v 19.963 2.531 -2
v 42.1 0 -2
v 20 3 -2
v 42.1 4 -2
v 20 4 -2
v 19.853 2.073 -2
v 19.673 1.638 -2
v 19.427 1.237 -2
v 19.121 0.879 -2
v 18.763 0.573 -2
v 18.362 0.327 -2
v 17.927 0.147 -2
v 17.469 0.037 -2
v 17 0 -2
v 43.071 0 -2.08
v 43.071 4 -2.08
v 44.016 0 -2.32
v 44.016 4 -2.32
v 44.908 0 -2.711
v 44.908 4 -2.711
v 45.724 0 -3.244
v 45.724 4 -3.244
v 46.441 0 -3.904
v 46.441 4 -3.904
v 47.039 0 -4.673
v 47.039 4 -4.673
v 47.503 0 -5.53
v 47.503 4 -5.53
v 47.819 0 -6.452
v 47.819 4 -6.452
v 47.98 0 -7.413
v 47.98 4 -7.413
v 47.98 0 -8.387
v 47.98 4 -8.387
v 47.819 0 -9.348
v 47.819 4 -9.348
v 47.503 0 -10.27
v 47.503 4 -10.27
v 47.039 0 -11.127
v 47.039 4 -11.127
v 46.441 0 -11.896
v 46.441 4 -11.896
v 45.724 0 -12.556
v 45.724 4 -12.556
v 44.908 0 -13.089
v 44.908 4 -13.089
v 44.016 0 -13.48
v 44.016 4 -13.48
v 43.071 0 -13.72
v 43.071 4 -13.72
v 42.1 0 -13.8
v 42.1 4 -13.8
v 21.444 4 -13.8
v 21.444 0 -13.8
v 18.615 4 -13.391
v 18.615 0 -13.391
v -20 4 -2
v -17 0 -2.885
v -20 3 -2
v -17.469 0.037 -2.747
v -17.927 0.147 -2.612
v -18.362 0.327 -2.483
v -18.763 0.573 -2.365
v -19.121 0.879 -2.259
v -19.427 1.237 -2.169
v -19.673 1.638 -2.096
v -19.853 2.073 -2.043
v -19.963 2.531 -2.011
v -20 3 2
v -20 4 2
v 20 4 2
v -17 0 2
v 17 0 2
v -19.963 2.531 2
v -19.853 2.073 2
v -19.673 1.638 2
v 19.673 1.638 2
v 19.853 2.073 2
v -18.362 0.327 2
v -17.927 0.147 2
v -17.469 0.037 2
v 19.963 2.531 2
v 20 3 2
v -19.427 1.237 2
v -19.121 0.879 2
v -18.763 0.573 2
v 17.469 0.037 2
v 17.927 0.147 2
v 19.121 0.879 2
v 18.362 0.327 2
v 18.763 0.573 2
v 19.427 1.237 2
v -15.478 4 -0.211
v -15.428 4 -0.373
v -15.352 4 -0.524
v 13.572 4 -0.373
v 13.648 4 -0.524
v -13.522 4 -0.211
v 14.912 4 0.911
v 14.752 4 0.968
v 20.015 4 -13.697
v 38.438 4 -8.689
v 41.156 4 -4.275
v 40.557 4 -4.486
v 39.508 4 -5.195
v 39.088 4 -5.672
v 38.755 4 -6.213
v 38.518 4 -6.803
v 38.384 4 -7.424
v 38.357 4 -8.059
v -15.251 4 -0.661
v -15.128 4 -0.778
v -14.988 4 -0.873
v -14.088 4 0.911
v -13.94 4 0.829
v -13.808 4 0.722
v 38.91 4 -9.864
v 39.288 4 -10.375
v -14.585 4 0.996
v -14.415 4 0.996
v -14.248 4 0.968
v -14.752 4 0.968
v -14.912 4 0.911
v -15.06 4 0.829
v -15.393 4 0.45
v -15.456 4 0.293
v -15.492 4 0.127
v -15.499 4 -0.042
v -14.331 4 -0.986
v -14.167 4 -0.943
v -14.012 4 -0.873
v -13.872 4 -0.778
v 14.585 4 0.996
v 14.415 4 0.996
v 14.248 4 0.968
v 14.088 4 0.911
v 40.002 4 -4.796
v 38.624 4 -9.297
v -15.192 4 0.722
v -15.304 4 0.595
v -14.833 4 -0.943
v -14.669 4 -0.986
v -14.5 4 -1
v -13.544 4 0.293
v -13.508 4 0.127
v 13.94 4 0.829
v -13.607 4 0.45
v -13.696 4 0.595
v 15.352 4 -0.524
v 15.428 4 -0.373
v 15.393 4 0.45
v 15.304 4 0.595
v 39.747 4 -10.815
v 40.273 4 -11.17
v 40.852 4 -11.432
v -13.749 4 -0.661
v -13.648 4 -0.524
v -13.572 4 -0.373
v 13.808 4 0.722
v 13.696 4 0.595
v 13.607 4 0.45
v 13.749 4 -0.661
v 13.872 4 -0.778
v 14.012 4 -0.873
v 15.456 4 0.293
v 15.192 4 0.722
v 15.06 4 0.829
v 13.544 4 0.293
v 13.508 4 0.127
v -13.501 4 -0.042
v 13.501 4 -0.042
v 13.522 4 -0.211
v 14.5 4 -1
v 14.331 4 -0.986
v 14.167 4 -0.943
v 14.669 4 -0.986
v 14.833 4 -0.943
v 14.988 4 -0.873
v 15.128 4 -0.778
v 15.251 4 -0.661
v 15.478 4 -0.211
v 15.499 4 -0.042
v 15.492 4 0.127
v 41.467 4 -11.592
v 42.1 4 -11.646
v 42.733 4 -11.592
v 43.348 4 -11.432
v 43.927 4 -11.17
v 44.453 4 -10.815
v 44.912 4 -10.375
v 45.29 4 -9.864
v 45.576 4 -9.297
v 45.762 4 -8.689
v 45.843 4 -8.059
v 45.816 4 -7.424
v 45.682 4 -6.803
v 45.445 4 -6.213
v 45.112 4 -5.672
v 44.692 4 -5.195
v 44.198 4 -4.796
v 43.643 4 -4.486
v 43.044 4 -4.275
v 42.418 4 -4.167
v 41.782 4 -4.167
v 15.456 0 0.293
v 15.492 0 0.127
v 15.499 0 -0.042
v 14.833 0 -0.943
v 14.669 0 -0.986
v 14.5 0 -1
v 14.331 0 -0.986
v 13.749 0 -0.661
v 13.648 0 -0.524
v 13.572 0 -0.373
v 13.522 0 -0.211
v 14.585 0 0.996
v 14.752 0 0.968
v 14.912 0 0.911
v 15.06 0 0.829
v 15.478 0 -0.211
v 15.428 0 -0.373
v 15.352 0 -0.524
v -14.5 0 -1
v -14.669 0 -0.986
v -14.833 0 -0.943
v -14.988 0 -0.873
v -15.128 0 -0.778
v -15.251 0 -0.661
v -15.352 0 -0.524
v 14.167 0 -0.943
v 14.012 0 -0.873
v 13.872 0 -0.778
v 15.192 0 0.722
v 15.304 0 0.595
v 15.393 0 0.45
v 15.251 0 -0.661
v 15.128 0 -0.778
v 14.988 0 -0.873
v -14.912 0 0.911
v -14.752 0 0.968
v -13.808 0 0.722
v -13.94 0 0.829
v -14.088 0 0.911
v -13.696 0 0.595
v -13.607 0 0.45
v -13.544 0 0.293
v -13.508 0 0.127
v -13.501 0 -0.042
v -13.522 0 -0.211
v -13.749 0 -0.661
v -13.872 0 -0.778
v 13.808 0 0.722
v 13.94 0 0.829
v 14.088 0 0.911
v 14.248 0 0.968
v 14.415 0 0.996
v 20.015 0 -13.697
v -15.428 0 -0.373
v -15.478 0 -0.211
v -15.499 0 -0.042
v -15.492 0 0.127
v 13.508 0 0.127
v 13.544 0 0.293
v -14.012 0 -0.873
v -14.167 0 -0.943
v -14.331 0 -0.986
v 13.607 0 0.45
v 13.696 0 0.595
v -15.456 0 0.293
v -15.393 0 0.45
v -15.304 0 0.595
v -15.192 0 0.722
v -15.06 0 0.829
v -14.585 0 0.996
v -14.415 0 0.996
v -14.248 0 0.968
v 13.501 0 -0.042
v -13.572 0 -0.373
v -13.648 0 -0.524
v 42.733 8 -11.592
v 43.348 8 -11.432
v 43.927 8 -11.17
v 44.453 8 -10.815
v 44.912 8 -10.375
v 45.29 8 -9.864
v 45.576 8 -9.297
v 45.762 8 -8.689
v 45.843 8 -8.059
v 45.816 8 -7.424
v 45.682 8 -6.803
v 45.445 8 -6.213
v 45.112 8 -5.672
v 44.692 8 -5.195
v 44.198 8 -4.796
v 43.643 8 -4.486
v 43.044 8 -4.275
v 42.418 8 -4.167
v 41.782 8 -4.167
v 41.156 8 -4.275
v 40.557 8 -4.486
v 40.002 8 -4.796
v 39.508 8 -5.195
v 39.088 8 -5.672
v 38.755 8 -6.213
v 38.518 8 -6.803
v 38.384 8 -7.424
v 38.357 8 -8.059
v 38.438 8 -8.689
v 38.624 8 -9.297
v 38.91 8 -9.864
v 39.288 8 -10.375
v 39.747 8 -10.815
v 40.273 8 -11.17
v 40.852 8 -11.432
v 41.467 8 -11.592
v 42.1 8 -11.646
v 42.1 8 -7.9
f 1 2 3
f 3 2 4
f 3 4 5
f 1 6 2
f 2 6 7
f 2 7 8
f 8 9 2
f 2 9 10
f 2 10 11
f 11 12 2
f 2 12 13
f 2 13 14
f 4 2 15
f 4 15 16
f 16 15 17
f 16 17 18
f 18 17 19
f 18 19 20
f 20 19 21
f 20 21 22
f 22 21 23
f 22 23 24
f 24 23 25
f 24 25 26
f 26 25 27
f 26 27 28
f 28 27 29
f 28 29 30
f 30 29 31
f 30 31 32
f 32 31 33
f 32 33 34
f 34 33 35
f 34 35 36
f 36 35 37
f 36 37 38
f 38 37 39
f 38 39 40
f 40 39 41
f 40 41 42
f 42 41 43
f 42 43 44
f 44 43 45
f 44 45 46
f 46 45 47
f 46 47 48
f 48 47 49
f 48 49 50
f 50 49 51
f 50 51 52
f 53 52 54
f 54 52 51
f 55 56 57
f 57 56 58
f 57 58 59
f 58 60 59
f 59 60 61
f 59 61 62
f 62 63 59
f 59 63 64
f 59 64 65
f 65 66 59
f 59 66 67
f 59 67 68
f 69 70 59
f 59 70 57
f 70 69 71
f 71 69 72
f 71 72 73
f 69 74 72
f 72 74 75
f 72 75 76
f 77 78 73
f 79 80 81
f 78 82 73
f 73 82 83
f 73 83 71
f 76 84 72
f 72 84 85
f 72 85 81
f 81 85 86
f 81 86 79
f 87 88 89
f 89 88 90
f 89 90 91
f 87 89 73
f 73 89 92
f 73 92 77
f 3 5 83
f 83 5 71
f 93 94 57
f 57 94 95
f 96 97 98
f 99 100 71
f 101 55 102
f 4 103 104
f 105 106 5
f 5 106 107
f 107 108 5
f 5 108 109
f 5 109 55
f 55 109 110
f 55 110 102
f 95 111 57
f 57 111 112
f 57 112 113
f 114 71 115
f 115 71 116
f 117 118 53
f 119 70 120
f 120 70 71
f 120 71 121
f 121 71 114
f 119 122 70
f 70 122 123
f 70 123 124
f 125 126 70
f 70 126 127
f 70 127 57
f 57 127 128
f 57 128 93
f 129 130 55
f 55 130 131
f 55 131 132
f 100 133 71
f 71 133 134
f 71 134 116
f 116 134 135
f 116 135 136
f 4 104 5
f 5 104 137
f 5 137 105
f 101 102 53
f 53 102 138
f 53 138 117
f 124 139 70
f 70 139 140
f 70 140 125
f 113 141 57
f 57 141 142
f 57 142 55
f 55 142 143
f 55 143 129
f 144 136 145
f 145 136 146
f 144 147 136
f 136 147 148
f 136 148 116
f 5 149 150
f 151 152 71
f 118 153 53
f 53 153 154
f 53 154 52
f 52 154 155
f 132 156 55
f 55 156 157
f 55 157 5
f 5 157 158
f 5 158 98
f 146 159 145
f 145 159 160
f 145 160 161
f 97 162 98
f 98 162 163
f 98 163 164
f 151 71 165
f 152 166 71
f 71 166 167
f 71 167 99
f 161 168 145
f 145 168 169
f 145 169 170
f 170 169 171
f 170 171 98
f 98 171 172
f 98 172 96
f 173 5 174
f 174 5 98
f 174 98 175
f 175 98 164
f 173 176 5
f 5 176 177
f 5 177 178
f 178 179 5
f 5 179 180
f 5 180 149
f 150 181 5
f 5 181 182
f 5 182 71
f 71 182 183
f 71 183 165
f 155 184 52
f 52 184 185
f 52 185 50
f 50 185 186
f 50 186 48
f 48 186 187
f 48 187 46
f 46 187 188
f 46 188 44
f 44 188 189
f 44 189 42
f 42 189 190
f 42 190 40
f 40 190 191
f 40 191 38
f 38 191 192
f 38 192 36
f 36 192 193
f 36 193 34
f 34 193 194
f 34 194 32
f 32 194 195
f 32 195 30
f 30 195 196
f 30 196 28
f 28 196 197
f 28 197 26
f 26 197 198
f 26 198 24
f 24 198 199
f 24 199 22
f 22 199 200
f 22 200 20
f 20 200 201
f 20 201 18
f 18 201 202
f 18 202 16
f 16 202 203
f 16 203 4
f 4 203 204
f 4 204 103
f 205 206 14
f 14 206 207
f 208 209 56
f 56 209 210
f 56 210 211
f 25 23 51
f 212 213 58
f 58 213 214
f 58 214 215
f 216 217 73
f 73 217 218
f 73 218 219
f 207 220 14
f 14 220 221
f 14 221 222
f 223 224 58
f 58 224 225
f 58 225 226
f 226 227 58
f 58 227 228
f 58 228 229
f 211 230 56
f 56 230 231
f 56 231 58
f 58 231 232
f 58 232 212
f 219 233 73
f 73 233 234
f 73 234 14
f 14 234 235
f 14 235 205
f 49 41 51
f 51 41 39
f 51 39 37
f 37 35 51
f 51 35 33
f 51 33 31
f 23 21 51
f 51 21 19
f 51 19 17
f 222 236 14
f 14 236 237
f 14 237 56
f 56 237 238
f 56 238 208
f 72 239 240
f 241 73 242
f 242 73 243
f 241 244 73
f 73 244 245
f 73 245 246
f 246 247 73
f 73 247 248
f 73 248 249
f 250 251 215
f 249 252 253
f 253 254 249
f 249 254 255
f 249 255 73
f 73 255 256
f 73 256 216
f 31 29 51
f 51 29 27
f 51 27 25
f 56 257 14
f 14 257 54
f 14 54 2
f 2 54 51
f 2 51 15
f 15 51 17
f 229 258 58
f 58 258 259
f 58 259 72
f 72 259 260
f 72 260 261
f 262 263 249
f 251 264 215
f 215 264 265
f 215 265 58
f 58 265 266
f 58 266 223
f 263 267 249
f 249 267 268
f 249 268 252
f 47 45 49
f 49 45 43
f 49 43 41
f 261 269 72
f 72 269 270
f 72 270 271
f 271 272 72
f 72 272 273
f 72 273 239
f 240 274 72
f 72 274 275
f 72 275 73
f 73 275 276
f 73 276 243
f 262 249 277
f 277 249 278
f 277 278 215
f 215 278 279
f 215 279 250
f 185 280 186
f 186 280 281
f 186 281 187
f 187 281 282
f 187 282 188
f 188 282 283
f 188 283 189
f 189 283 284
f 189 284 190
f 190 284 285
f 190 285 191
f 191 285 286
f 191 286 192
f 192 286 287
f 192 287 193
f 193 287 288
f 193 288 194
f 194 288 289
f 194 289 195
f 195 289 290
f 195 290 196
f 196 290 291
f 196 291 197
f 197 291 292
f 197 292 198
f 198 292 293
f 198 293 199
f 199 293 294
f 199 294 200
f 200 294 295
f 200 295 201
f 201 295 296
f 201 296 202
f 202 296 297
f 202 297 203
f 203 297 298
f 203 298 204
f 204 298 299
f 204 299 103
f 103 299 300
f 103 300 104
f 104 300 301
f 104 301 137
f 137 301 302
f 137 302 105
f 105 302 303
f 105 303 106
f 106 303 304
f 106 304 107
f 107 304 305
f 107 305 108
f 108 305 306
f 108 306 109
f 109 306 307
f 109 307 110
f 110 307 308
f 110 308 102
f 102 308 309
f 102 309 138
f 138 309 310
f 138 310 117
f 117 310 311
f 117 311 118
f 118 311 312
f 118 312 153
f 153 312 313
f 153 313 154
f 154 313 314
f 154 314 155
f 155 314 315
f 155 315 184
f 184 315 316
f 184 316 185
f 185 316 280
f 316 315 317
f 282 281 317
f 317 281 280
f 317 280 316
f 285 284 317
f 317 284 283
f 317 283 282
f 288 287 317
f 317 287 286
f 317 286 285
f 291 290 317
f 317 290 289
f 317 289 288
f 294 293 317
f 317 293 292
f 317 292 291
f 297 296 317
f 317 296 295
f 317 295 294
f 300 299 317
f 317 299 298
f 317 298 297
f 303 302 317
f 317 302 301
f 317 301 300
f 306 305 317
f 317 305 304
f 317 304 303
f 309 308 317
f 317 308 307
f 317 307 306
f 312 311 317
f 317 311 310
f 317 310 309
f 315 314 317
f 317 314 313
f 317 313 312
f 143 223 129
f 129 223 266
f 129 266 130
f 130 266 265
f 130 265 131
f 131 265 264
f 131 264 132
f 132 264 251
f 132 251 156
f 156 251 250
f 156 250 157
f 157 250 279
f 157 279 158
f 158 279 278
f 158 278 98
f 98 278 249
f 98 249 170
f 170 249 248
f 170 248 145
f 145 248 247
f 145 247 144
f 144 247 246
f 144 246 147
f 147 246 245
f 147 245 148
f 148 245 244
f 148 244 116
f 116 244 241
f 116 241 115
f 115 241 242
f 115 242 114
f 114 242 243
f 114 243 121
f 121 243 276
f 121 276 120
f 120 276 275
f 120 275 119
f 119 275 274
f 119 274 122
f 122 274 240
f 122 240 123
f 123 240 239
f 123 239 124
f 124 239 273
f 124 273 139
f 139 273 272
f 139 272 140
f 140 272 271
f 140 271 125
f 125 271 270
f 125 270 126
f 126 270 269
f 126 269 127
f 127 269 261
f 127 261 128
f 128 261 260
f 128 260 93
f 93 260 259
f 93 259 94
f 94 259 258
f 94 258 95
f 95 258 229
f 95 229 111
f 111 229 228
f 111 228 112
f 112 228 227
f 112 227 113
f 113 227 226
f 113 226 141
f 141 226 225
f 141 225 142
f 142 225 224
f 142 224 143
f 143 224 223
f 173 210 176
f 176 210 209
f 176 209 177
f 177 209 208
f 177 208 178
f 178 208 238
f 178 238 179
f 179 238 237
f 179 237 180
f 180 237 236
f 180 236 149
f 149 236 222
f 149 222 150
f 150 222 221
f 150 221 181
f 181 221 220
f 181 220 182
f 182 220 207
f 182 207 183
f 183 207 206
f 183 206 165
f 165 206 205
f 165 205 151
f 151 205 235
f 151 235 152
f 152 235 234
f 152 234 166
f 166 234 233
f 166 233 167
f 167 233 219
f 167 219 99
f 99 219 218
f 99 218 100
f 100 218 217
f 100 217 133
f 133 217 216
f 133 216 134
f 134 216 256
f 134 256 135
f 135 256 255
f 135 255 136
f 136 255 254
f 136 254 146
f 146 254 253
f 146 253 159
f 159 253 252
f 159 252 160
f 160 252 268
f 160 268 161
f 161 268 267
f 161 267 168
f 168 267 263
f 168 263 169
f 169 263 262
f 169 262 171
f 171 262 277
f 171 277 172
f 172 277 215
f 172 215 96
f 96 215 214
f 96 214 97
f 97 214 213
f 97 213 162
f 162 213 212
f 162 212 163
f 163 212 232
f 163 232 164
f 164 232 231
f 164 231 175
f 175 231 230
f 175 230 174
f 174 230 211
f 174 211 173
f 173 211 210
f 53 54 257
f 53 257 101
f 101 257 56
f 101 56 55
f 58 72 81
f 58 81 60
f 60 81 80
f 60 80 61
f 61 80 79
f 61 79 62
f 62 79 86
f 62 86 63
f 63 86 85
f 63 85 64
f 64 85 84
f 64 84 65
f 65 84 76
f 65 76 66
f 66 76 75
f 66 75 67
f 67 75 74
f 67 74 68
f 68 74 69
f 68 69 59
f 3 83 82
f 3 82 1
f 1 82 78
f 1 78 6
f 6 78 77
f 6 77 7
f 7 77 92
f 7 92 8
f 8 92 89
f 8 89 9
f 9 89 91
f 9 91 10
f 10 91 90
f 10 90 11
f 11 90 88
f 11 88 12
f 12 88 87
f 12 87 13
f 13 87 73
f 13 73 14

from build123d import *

# Parameters (mm, degrees)
BOSS_EXTRUDE2_DEPTH = 4
SKETCH4_R           = 3.746181505
BOSS_EXTRUDE3_DEPTH = 4
SKETCH5_R           = 1
CUT_EXTRUDE1_DEPTH  = 9
FILLET1_R           = 10
FILLET3_R           = 3


with BuildPart() as part:
    # Sketch1 → Boss-Extrude2 (new body)
    with BuildSketch(Plane(origin=(0, 0, 0), x_dir=(1, 0, 0), z_dir=(0, 1, 0))):
        with BuildLine():
            Line((-20, 2), (20, 13.8))
            Line((20, 13.8), (42.1, 13.8))
            ThreePointArc((42.1, 13.8), (48, 7.9), (42.1, 2))
            Line((42.1, 2), (20, 2))
            Line((20, 2), (20, -2))
            Line((20, -2), (-20, -2))
            Line((-20, -2), (-20, 2))
        make_face()
    extrude(amount=BOSS_EXTRUDE2_DEPTH)

    # Sketch4 → Boss-Extrude3 (add)
    with BuildSketch(Plane(origin=(0, 4, 0), x_dir=(-1, 0, 0), z_dir=(0, -1, 0))):
        with Locations((-42.1, 7.9)):
            Circle(SKETCH4_R)
    extrude(amount=-BOSS_EXTRUDE3_DEPTH)

    # Sketch5 → Cut-Extrude1 (cut, through all)
    with BuildSketch(Plane(origin=(0, 0, 0), x_dir=(-1, 0, 0), z_dir=(0, -1, 0))):
        with Locations((14.5, 0)):
            Circle(SKETCH5_R)
        with Locations((-14.5, 0)):
            Circle(SKETCH5_R)
    extrude(amount=-CUT_EXTRUDE1_DEPTH, mode=Mode.SUBTRACT)

    # Fillet1
    fillet1_edges = [part.edges().sort_by_distance(p)[0] for p in [
        (20, 2, -13.8),
    ]]
    fillet(fillet1_edges, radius=FILLET1_R)

    # Fillet3
    fillet3_edges = [part.edges().sort_by_distance(p)[0] for p in [
        (20, 0, 0),
        (-20, 0, 0),
    ]]
    fillet(fillet3_edges, radius=FILLET3_R)


solid = part.part
